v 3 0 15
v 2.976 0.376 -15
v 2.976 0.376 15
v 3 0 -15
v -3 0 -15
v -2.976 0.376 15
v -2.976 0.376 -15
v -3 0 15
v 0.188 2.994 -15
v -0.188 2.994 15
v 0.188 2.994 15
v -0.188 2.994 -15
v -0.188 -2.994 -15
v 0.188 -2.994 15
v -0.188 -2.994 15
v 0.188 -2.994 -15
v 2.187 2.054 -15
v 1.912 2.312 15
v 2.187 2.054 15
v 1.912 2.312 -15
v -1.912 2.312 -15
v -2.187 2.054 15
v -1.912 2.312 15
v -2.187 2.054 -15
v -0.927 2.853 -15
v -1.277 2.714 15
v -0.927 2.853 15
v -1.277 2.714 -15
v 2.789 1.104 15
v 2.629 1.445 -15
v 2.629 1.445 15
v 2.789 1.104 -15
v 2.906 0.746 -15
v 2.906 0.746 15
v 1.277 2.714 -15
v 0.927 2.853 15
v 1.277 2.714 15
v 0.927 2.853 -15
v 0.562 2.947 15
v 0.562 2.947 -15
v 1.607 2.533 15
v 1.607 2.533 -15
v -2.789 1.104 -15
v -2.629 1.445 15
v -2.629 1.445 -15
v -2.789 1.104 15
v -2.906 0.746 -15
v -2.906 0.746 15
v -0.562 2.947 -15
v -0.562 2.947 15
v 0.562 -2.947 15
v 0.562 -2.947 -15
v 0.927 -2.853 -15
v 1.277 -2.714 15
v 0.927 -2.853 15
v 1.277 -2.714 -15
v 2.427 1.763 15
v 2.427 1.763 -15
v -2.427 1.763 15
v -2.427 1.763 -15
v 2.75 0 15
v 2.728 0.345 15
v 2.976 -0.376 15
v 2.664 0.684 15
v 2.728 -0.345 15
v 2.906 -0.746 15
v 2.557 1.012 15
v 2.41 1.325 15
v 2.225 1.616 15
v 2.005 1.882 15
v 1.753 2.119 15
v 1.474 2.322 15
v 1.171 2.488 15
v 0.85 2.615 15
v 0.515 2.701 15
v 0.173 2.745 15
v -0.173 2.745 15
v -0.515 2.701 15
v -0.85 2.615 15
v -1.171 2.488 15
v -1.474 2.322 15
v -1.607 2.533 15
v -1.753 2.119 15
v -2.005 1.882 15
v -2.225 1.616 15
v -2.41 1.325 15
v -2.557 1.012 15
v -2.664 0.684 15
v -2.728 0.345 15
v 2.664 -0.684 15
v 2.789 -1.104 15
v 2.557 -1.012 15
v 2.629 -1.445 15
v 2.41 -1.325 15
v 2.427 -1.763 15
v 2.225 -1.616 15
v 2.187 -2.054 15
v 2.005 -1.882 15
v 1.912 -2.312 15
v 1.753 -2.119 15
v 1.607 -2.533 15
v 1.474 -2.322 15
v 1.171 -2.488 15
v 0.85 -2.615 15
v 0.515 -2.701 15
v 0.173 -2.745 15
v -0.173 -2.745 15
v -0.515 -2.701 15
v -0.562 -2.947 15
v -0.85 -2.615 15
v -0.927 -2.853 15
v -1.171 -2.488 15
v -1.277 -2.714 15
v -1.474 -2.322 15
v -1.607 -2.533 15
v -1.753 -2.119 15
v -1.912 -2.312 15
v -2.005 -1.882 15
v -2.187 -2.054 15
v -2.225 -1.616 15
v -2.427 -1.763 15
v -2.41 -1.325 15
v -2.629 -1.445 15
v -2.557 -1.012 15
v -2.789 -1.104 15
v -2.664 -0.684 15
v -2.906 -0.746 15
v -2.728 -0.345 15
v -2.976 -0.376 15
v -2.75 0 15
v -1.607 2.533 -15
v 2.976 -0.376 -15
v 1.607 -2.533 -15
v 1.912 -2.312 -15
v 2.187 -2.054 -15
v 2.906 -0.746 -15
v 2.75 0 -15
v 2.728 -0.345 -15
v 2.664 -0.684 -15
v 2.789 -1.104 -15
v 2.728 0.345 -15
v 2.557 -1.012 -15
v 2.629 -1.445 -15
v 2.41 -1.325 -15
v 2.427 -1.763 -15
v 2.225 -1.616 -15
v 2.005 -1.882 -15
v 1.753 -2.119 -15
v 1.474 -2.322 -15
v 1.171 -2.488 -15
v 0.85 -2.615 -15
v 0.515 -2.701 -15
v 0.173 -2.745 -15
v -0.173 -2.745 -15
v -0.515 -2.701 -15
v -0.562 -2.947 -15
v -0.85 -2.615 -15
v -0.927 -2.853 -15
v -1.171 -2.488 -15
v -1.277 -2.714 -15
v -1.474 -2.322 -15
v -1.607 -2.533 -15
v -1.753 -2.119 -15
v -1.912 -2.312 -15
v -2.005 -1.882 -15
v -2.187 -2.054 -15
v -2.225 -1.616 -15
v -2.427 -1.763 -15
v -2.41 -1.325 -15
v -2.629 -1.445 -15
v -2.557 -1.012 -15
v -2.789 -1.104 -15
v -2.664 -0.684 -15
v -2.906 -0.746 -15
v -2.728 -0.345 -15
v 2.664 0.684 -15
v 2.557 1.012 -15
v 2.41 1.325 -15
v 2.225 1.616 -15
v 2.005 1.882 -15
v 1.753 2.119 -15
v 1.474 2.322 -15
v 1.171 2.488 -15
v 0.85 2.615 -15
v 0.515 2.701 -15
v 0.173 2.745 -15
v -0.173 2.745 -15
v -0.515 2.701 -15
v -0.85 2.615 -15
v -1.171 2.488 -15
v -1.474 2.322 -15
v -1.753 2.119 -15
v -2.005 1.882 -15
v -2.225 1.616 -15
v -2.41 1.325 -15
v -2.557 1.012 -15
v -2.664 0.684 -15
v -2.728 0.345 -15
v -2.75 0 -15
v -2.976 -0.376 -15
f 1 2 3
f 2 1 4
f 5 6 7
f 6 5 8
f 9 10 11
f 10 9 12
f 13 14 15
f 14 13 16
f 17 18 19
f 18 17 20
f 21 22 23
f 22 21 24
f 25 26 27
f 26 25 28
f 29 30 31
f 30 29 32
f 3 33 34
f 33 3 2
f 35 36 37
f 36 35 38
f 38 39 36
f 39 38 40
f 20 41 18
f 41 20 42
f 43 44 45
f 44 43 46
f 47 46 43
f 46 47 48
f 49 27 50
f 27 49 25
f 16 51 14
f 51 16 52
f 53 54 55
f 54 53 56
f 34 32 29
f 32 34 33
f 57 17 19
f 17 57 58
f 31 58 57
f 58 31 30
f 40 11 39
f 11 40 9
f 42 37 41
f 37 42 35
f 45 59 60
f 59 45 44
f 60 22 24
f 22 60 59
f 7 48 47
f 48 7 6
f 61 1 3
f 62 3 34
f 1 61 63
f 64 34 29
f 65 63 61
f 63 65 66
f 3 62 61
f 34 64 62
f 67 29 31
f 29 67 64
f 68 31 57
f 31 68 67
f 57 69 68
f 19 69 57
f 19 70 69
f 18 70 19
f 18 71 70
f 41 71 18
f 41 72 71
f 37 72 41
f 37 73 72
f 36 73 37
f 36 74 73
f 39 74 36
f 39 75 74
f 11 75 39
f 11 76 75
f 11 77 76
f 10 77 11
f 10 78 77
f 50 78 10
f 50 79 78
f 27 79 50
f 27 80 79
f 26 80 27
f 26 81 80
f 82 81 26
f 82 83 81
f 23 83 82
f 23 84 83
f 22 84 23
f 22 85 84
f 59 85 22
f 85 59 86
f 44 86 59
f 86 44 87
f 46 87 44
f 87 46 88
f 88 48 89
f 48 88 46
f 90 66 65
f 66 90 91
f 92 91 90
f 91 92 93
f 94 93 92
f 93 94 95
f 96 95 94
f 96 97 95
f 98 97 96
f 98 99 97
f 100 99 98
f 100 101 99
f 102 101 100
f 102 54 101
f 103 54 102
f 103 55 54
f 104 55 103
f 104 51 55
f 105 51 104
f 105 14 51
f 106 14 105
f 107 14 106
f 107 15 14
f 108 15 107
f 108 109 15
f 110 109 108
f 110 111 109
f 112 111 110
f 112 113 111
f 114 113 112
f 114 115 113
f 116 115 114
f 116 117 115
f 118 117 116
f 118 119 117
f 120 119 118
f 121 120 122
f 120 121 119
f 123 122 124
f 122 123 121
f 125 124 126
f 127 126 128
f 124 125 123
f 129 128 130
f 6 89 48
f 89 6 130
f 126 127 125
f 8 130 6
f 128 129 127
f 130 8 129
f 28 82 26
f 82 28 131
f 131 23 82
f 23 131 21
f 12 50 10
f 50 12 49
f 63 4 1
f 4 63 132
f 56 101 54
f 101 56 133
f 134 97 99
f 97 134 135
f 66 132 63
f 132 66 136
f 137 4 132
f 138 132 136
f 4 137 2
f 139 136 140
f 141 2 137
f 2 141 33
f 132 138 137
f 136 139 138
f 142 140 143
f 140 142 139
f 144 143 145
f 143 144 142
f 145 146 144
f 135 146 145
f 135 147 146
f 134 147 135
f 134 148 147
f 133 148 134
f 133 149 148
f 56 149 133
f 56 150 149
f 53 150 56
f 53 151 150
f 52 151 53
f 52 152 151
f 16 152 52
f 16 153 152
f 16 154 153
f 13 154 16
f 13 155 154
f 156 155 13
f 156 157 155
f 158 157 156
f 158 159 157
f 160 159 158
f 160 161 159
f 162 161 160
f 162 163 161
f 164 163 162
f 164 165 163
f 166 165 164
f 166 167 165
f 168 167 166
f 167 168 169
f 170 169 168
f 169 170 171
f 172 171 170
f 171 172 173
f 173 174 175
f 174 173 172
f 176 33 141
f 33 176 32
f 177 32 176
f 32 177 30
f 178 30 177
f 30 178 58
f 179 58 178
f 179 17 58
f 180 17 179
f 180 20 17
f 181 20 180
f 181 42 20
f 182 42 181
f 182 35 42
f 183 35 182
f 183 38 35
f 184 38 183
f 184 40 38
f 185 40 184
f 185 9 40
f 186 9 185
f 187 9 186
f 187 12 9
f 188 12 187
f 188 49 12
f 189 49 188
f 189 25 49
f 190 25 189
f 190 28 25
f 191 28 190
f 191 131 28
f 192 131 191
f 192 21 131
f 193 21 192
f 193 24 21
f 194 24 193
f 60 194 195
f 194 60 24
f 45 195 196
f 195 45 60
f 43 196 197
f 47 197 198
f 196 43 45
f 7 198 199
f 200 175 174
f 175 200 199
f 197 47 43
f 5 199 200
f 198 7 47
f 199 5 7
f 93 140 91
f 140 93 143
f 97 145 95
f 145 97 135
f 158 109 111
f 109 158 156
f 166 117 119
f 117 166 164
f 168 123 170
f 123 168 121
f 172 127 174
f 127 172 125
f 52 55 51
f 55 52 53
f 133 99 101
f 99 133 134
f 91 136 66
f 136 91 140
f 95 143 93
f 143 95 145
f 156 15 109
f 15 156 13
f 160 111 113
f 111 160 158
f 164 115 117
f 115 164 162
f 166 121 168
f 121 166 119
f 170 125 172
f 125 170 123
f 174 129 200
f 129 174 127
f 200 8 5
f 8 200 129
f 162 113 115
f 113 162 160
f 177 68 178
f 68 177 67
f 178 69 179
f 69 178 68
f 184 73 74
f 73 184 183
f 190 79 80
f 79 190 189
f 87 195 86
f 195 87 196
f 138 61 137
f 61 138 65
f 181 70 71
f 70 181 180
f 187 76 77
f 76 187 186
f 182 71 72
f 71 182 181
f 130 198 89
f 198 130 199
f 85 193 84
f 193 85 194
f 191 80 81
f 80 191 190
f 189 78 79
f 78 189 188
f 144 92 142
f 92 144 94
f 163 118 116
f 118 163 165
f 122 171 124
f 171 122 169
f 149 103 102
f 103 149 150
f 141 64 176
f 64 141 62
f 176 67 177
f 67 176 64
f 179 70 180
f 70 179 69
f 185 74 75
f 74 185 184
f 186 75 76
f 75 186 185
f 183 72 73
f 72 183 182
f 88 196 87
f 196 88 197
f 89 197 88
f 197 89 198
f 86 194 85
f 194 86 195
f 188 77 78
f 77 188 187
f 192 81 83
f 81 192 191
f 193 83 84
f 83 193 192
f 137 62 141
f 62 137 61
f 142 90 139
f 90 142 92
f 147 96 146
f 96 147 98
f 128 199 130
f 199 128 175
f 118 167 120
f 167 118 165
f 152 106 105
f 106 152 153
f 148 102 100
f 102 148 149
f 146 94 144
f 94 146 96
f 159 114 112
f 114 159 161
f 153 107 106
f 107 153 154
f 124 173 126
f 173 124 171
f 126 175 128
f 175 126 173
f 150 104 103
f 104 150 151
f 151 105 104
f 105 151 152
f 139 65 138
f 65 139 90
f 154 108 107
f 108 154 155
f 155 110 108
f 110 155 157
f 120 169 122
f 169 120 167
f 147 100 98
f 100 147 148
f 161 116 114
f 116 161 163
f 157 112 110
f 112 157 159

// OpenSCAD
$fn = 50;


difference() {
	union() {
		translate(v = [0, 0, -15.0000000000]) {
			cylinder(h = 30, r = 3.0000000000);
		}
	}
	union() {
		translate(v = [0, 0, -100.0000000000]) {
			cylinder(h = 200, r = 2.7500000000);
		}
	}
}
